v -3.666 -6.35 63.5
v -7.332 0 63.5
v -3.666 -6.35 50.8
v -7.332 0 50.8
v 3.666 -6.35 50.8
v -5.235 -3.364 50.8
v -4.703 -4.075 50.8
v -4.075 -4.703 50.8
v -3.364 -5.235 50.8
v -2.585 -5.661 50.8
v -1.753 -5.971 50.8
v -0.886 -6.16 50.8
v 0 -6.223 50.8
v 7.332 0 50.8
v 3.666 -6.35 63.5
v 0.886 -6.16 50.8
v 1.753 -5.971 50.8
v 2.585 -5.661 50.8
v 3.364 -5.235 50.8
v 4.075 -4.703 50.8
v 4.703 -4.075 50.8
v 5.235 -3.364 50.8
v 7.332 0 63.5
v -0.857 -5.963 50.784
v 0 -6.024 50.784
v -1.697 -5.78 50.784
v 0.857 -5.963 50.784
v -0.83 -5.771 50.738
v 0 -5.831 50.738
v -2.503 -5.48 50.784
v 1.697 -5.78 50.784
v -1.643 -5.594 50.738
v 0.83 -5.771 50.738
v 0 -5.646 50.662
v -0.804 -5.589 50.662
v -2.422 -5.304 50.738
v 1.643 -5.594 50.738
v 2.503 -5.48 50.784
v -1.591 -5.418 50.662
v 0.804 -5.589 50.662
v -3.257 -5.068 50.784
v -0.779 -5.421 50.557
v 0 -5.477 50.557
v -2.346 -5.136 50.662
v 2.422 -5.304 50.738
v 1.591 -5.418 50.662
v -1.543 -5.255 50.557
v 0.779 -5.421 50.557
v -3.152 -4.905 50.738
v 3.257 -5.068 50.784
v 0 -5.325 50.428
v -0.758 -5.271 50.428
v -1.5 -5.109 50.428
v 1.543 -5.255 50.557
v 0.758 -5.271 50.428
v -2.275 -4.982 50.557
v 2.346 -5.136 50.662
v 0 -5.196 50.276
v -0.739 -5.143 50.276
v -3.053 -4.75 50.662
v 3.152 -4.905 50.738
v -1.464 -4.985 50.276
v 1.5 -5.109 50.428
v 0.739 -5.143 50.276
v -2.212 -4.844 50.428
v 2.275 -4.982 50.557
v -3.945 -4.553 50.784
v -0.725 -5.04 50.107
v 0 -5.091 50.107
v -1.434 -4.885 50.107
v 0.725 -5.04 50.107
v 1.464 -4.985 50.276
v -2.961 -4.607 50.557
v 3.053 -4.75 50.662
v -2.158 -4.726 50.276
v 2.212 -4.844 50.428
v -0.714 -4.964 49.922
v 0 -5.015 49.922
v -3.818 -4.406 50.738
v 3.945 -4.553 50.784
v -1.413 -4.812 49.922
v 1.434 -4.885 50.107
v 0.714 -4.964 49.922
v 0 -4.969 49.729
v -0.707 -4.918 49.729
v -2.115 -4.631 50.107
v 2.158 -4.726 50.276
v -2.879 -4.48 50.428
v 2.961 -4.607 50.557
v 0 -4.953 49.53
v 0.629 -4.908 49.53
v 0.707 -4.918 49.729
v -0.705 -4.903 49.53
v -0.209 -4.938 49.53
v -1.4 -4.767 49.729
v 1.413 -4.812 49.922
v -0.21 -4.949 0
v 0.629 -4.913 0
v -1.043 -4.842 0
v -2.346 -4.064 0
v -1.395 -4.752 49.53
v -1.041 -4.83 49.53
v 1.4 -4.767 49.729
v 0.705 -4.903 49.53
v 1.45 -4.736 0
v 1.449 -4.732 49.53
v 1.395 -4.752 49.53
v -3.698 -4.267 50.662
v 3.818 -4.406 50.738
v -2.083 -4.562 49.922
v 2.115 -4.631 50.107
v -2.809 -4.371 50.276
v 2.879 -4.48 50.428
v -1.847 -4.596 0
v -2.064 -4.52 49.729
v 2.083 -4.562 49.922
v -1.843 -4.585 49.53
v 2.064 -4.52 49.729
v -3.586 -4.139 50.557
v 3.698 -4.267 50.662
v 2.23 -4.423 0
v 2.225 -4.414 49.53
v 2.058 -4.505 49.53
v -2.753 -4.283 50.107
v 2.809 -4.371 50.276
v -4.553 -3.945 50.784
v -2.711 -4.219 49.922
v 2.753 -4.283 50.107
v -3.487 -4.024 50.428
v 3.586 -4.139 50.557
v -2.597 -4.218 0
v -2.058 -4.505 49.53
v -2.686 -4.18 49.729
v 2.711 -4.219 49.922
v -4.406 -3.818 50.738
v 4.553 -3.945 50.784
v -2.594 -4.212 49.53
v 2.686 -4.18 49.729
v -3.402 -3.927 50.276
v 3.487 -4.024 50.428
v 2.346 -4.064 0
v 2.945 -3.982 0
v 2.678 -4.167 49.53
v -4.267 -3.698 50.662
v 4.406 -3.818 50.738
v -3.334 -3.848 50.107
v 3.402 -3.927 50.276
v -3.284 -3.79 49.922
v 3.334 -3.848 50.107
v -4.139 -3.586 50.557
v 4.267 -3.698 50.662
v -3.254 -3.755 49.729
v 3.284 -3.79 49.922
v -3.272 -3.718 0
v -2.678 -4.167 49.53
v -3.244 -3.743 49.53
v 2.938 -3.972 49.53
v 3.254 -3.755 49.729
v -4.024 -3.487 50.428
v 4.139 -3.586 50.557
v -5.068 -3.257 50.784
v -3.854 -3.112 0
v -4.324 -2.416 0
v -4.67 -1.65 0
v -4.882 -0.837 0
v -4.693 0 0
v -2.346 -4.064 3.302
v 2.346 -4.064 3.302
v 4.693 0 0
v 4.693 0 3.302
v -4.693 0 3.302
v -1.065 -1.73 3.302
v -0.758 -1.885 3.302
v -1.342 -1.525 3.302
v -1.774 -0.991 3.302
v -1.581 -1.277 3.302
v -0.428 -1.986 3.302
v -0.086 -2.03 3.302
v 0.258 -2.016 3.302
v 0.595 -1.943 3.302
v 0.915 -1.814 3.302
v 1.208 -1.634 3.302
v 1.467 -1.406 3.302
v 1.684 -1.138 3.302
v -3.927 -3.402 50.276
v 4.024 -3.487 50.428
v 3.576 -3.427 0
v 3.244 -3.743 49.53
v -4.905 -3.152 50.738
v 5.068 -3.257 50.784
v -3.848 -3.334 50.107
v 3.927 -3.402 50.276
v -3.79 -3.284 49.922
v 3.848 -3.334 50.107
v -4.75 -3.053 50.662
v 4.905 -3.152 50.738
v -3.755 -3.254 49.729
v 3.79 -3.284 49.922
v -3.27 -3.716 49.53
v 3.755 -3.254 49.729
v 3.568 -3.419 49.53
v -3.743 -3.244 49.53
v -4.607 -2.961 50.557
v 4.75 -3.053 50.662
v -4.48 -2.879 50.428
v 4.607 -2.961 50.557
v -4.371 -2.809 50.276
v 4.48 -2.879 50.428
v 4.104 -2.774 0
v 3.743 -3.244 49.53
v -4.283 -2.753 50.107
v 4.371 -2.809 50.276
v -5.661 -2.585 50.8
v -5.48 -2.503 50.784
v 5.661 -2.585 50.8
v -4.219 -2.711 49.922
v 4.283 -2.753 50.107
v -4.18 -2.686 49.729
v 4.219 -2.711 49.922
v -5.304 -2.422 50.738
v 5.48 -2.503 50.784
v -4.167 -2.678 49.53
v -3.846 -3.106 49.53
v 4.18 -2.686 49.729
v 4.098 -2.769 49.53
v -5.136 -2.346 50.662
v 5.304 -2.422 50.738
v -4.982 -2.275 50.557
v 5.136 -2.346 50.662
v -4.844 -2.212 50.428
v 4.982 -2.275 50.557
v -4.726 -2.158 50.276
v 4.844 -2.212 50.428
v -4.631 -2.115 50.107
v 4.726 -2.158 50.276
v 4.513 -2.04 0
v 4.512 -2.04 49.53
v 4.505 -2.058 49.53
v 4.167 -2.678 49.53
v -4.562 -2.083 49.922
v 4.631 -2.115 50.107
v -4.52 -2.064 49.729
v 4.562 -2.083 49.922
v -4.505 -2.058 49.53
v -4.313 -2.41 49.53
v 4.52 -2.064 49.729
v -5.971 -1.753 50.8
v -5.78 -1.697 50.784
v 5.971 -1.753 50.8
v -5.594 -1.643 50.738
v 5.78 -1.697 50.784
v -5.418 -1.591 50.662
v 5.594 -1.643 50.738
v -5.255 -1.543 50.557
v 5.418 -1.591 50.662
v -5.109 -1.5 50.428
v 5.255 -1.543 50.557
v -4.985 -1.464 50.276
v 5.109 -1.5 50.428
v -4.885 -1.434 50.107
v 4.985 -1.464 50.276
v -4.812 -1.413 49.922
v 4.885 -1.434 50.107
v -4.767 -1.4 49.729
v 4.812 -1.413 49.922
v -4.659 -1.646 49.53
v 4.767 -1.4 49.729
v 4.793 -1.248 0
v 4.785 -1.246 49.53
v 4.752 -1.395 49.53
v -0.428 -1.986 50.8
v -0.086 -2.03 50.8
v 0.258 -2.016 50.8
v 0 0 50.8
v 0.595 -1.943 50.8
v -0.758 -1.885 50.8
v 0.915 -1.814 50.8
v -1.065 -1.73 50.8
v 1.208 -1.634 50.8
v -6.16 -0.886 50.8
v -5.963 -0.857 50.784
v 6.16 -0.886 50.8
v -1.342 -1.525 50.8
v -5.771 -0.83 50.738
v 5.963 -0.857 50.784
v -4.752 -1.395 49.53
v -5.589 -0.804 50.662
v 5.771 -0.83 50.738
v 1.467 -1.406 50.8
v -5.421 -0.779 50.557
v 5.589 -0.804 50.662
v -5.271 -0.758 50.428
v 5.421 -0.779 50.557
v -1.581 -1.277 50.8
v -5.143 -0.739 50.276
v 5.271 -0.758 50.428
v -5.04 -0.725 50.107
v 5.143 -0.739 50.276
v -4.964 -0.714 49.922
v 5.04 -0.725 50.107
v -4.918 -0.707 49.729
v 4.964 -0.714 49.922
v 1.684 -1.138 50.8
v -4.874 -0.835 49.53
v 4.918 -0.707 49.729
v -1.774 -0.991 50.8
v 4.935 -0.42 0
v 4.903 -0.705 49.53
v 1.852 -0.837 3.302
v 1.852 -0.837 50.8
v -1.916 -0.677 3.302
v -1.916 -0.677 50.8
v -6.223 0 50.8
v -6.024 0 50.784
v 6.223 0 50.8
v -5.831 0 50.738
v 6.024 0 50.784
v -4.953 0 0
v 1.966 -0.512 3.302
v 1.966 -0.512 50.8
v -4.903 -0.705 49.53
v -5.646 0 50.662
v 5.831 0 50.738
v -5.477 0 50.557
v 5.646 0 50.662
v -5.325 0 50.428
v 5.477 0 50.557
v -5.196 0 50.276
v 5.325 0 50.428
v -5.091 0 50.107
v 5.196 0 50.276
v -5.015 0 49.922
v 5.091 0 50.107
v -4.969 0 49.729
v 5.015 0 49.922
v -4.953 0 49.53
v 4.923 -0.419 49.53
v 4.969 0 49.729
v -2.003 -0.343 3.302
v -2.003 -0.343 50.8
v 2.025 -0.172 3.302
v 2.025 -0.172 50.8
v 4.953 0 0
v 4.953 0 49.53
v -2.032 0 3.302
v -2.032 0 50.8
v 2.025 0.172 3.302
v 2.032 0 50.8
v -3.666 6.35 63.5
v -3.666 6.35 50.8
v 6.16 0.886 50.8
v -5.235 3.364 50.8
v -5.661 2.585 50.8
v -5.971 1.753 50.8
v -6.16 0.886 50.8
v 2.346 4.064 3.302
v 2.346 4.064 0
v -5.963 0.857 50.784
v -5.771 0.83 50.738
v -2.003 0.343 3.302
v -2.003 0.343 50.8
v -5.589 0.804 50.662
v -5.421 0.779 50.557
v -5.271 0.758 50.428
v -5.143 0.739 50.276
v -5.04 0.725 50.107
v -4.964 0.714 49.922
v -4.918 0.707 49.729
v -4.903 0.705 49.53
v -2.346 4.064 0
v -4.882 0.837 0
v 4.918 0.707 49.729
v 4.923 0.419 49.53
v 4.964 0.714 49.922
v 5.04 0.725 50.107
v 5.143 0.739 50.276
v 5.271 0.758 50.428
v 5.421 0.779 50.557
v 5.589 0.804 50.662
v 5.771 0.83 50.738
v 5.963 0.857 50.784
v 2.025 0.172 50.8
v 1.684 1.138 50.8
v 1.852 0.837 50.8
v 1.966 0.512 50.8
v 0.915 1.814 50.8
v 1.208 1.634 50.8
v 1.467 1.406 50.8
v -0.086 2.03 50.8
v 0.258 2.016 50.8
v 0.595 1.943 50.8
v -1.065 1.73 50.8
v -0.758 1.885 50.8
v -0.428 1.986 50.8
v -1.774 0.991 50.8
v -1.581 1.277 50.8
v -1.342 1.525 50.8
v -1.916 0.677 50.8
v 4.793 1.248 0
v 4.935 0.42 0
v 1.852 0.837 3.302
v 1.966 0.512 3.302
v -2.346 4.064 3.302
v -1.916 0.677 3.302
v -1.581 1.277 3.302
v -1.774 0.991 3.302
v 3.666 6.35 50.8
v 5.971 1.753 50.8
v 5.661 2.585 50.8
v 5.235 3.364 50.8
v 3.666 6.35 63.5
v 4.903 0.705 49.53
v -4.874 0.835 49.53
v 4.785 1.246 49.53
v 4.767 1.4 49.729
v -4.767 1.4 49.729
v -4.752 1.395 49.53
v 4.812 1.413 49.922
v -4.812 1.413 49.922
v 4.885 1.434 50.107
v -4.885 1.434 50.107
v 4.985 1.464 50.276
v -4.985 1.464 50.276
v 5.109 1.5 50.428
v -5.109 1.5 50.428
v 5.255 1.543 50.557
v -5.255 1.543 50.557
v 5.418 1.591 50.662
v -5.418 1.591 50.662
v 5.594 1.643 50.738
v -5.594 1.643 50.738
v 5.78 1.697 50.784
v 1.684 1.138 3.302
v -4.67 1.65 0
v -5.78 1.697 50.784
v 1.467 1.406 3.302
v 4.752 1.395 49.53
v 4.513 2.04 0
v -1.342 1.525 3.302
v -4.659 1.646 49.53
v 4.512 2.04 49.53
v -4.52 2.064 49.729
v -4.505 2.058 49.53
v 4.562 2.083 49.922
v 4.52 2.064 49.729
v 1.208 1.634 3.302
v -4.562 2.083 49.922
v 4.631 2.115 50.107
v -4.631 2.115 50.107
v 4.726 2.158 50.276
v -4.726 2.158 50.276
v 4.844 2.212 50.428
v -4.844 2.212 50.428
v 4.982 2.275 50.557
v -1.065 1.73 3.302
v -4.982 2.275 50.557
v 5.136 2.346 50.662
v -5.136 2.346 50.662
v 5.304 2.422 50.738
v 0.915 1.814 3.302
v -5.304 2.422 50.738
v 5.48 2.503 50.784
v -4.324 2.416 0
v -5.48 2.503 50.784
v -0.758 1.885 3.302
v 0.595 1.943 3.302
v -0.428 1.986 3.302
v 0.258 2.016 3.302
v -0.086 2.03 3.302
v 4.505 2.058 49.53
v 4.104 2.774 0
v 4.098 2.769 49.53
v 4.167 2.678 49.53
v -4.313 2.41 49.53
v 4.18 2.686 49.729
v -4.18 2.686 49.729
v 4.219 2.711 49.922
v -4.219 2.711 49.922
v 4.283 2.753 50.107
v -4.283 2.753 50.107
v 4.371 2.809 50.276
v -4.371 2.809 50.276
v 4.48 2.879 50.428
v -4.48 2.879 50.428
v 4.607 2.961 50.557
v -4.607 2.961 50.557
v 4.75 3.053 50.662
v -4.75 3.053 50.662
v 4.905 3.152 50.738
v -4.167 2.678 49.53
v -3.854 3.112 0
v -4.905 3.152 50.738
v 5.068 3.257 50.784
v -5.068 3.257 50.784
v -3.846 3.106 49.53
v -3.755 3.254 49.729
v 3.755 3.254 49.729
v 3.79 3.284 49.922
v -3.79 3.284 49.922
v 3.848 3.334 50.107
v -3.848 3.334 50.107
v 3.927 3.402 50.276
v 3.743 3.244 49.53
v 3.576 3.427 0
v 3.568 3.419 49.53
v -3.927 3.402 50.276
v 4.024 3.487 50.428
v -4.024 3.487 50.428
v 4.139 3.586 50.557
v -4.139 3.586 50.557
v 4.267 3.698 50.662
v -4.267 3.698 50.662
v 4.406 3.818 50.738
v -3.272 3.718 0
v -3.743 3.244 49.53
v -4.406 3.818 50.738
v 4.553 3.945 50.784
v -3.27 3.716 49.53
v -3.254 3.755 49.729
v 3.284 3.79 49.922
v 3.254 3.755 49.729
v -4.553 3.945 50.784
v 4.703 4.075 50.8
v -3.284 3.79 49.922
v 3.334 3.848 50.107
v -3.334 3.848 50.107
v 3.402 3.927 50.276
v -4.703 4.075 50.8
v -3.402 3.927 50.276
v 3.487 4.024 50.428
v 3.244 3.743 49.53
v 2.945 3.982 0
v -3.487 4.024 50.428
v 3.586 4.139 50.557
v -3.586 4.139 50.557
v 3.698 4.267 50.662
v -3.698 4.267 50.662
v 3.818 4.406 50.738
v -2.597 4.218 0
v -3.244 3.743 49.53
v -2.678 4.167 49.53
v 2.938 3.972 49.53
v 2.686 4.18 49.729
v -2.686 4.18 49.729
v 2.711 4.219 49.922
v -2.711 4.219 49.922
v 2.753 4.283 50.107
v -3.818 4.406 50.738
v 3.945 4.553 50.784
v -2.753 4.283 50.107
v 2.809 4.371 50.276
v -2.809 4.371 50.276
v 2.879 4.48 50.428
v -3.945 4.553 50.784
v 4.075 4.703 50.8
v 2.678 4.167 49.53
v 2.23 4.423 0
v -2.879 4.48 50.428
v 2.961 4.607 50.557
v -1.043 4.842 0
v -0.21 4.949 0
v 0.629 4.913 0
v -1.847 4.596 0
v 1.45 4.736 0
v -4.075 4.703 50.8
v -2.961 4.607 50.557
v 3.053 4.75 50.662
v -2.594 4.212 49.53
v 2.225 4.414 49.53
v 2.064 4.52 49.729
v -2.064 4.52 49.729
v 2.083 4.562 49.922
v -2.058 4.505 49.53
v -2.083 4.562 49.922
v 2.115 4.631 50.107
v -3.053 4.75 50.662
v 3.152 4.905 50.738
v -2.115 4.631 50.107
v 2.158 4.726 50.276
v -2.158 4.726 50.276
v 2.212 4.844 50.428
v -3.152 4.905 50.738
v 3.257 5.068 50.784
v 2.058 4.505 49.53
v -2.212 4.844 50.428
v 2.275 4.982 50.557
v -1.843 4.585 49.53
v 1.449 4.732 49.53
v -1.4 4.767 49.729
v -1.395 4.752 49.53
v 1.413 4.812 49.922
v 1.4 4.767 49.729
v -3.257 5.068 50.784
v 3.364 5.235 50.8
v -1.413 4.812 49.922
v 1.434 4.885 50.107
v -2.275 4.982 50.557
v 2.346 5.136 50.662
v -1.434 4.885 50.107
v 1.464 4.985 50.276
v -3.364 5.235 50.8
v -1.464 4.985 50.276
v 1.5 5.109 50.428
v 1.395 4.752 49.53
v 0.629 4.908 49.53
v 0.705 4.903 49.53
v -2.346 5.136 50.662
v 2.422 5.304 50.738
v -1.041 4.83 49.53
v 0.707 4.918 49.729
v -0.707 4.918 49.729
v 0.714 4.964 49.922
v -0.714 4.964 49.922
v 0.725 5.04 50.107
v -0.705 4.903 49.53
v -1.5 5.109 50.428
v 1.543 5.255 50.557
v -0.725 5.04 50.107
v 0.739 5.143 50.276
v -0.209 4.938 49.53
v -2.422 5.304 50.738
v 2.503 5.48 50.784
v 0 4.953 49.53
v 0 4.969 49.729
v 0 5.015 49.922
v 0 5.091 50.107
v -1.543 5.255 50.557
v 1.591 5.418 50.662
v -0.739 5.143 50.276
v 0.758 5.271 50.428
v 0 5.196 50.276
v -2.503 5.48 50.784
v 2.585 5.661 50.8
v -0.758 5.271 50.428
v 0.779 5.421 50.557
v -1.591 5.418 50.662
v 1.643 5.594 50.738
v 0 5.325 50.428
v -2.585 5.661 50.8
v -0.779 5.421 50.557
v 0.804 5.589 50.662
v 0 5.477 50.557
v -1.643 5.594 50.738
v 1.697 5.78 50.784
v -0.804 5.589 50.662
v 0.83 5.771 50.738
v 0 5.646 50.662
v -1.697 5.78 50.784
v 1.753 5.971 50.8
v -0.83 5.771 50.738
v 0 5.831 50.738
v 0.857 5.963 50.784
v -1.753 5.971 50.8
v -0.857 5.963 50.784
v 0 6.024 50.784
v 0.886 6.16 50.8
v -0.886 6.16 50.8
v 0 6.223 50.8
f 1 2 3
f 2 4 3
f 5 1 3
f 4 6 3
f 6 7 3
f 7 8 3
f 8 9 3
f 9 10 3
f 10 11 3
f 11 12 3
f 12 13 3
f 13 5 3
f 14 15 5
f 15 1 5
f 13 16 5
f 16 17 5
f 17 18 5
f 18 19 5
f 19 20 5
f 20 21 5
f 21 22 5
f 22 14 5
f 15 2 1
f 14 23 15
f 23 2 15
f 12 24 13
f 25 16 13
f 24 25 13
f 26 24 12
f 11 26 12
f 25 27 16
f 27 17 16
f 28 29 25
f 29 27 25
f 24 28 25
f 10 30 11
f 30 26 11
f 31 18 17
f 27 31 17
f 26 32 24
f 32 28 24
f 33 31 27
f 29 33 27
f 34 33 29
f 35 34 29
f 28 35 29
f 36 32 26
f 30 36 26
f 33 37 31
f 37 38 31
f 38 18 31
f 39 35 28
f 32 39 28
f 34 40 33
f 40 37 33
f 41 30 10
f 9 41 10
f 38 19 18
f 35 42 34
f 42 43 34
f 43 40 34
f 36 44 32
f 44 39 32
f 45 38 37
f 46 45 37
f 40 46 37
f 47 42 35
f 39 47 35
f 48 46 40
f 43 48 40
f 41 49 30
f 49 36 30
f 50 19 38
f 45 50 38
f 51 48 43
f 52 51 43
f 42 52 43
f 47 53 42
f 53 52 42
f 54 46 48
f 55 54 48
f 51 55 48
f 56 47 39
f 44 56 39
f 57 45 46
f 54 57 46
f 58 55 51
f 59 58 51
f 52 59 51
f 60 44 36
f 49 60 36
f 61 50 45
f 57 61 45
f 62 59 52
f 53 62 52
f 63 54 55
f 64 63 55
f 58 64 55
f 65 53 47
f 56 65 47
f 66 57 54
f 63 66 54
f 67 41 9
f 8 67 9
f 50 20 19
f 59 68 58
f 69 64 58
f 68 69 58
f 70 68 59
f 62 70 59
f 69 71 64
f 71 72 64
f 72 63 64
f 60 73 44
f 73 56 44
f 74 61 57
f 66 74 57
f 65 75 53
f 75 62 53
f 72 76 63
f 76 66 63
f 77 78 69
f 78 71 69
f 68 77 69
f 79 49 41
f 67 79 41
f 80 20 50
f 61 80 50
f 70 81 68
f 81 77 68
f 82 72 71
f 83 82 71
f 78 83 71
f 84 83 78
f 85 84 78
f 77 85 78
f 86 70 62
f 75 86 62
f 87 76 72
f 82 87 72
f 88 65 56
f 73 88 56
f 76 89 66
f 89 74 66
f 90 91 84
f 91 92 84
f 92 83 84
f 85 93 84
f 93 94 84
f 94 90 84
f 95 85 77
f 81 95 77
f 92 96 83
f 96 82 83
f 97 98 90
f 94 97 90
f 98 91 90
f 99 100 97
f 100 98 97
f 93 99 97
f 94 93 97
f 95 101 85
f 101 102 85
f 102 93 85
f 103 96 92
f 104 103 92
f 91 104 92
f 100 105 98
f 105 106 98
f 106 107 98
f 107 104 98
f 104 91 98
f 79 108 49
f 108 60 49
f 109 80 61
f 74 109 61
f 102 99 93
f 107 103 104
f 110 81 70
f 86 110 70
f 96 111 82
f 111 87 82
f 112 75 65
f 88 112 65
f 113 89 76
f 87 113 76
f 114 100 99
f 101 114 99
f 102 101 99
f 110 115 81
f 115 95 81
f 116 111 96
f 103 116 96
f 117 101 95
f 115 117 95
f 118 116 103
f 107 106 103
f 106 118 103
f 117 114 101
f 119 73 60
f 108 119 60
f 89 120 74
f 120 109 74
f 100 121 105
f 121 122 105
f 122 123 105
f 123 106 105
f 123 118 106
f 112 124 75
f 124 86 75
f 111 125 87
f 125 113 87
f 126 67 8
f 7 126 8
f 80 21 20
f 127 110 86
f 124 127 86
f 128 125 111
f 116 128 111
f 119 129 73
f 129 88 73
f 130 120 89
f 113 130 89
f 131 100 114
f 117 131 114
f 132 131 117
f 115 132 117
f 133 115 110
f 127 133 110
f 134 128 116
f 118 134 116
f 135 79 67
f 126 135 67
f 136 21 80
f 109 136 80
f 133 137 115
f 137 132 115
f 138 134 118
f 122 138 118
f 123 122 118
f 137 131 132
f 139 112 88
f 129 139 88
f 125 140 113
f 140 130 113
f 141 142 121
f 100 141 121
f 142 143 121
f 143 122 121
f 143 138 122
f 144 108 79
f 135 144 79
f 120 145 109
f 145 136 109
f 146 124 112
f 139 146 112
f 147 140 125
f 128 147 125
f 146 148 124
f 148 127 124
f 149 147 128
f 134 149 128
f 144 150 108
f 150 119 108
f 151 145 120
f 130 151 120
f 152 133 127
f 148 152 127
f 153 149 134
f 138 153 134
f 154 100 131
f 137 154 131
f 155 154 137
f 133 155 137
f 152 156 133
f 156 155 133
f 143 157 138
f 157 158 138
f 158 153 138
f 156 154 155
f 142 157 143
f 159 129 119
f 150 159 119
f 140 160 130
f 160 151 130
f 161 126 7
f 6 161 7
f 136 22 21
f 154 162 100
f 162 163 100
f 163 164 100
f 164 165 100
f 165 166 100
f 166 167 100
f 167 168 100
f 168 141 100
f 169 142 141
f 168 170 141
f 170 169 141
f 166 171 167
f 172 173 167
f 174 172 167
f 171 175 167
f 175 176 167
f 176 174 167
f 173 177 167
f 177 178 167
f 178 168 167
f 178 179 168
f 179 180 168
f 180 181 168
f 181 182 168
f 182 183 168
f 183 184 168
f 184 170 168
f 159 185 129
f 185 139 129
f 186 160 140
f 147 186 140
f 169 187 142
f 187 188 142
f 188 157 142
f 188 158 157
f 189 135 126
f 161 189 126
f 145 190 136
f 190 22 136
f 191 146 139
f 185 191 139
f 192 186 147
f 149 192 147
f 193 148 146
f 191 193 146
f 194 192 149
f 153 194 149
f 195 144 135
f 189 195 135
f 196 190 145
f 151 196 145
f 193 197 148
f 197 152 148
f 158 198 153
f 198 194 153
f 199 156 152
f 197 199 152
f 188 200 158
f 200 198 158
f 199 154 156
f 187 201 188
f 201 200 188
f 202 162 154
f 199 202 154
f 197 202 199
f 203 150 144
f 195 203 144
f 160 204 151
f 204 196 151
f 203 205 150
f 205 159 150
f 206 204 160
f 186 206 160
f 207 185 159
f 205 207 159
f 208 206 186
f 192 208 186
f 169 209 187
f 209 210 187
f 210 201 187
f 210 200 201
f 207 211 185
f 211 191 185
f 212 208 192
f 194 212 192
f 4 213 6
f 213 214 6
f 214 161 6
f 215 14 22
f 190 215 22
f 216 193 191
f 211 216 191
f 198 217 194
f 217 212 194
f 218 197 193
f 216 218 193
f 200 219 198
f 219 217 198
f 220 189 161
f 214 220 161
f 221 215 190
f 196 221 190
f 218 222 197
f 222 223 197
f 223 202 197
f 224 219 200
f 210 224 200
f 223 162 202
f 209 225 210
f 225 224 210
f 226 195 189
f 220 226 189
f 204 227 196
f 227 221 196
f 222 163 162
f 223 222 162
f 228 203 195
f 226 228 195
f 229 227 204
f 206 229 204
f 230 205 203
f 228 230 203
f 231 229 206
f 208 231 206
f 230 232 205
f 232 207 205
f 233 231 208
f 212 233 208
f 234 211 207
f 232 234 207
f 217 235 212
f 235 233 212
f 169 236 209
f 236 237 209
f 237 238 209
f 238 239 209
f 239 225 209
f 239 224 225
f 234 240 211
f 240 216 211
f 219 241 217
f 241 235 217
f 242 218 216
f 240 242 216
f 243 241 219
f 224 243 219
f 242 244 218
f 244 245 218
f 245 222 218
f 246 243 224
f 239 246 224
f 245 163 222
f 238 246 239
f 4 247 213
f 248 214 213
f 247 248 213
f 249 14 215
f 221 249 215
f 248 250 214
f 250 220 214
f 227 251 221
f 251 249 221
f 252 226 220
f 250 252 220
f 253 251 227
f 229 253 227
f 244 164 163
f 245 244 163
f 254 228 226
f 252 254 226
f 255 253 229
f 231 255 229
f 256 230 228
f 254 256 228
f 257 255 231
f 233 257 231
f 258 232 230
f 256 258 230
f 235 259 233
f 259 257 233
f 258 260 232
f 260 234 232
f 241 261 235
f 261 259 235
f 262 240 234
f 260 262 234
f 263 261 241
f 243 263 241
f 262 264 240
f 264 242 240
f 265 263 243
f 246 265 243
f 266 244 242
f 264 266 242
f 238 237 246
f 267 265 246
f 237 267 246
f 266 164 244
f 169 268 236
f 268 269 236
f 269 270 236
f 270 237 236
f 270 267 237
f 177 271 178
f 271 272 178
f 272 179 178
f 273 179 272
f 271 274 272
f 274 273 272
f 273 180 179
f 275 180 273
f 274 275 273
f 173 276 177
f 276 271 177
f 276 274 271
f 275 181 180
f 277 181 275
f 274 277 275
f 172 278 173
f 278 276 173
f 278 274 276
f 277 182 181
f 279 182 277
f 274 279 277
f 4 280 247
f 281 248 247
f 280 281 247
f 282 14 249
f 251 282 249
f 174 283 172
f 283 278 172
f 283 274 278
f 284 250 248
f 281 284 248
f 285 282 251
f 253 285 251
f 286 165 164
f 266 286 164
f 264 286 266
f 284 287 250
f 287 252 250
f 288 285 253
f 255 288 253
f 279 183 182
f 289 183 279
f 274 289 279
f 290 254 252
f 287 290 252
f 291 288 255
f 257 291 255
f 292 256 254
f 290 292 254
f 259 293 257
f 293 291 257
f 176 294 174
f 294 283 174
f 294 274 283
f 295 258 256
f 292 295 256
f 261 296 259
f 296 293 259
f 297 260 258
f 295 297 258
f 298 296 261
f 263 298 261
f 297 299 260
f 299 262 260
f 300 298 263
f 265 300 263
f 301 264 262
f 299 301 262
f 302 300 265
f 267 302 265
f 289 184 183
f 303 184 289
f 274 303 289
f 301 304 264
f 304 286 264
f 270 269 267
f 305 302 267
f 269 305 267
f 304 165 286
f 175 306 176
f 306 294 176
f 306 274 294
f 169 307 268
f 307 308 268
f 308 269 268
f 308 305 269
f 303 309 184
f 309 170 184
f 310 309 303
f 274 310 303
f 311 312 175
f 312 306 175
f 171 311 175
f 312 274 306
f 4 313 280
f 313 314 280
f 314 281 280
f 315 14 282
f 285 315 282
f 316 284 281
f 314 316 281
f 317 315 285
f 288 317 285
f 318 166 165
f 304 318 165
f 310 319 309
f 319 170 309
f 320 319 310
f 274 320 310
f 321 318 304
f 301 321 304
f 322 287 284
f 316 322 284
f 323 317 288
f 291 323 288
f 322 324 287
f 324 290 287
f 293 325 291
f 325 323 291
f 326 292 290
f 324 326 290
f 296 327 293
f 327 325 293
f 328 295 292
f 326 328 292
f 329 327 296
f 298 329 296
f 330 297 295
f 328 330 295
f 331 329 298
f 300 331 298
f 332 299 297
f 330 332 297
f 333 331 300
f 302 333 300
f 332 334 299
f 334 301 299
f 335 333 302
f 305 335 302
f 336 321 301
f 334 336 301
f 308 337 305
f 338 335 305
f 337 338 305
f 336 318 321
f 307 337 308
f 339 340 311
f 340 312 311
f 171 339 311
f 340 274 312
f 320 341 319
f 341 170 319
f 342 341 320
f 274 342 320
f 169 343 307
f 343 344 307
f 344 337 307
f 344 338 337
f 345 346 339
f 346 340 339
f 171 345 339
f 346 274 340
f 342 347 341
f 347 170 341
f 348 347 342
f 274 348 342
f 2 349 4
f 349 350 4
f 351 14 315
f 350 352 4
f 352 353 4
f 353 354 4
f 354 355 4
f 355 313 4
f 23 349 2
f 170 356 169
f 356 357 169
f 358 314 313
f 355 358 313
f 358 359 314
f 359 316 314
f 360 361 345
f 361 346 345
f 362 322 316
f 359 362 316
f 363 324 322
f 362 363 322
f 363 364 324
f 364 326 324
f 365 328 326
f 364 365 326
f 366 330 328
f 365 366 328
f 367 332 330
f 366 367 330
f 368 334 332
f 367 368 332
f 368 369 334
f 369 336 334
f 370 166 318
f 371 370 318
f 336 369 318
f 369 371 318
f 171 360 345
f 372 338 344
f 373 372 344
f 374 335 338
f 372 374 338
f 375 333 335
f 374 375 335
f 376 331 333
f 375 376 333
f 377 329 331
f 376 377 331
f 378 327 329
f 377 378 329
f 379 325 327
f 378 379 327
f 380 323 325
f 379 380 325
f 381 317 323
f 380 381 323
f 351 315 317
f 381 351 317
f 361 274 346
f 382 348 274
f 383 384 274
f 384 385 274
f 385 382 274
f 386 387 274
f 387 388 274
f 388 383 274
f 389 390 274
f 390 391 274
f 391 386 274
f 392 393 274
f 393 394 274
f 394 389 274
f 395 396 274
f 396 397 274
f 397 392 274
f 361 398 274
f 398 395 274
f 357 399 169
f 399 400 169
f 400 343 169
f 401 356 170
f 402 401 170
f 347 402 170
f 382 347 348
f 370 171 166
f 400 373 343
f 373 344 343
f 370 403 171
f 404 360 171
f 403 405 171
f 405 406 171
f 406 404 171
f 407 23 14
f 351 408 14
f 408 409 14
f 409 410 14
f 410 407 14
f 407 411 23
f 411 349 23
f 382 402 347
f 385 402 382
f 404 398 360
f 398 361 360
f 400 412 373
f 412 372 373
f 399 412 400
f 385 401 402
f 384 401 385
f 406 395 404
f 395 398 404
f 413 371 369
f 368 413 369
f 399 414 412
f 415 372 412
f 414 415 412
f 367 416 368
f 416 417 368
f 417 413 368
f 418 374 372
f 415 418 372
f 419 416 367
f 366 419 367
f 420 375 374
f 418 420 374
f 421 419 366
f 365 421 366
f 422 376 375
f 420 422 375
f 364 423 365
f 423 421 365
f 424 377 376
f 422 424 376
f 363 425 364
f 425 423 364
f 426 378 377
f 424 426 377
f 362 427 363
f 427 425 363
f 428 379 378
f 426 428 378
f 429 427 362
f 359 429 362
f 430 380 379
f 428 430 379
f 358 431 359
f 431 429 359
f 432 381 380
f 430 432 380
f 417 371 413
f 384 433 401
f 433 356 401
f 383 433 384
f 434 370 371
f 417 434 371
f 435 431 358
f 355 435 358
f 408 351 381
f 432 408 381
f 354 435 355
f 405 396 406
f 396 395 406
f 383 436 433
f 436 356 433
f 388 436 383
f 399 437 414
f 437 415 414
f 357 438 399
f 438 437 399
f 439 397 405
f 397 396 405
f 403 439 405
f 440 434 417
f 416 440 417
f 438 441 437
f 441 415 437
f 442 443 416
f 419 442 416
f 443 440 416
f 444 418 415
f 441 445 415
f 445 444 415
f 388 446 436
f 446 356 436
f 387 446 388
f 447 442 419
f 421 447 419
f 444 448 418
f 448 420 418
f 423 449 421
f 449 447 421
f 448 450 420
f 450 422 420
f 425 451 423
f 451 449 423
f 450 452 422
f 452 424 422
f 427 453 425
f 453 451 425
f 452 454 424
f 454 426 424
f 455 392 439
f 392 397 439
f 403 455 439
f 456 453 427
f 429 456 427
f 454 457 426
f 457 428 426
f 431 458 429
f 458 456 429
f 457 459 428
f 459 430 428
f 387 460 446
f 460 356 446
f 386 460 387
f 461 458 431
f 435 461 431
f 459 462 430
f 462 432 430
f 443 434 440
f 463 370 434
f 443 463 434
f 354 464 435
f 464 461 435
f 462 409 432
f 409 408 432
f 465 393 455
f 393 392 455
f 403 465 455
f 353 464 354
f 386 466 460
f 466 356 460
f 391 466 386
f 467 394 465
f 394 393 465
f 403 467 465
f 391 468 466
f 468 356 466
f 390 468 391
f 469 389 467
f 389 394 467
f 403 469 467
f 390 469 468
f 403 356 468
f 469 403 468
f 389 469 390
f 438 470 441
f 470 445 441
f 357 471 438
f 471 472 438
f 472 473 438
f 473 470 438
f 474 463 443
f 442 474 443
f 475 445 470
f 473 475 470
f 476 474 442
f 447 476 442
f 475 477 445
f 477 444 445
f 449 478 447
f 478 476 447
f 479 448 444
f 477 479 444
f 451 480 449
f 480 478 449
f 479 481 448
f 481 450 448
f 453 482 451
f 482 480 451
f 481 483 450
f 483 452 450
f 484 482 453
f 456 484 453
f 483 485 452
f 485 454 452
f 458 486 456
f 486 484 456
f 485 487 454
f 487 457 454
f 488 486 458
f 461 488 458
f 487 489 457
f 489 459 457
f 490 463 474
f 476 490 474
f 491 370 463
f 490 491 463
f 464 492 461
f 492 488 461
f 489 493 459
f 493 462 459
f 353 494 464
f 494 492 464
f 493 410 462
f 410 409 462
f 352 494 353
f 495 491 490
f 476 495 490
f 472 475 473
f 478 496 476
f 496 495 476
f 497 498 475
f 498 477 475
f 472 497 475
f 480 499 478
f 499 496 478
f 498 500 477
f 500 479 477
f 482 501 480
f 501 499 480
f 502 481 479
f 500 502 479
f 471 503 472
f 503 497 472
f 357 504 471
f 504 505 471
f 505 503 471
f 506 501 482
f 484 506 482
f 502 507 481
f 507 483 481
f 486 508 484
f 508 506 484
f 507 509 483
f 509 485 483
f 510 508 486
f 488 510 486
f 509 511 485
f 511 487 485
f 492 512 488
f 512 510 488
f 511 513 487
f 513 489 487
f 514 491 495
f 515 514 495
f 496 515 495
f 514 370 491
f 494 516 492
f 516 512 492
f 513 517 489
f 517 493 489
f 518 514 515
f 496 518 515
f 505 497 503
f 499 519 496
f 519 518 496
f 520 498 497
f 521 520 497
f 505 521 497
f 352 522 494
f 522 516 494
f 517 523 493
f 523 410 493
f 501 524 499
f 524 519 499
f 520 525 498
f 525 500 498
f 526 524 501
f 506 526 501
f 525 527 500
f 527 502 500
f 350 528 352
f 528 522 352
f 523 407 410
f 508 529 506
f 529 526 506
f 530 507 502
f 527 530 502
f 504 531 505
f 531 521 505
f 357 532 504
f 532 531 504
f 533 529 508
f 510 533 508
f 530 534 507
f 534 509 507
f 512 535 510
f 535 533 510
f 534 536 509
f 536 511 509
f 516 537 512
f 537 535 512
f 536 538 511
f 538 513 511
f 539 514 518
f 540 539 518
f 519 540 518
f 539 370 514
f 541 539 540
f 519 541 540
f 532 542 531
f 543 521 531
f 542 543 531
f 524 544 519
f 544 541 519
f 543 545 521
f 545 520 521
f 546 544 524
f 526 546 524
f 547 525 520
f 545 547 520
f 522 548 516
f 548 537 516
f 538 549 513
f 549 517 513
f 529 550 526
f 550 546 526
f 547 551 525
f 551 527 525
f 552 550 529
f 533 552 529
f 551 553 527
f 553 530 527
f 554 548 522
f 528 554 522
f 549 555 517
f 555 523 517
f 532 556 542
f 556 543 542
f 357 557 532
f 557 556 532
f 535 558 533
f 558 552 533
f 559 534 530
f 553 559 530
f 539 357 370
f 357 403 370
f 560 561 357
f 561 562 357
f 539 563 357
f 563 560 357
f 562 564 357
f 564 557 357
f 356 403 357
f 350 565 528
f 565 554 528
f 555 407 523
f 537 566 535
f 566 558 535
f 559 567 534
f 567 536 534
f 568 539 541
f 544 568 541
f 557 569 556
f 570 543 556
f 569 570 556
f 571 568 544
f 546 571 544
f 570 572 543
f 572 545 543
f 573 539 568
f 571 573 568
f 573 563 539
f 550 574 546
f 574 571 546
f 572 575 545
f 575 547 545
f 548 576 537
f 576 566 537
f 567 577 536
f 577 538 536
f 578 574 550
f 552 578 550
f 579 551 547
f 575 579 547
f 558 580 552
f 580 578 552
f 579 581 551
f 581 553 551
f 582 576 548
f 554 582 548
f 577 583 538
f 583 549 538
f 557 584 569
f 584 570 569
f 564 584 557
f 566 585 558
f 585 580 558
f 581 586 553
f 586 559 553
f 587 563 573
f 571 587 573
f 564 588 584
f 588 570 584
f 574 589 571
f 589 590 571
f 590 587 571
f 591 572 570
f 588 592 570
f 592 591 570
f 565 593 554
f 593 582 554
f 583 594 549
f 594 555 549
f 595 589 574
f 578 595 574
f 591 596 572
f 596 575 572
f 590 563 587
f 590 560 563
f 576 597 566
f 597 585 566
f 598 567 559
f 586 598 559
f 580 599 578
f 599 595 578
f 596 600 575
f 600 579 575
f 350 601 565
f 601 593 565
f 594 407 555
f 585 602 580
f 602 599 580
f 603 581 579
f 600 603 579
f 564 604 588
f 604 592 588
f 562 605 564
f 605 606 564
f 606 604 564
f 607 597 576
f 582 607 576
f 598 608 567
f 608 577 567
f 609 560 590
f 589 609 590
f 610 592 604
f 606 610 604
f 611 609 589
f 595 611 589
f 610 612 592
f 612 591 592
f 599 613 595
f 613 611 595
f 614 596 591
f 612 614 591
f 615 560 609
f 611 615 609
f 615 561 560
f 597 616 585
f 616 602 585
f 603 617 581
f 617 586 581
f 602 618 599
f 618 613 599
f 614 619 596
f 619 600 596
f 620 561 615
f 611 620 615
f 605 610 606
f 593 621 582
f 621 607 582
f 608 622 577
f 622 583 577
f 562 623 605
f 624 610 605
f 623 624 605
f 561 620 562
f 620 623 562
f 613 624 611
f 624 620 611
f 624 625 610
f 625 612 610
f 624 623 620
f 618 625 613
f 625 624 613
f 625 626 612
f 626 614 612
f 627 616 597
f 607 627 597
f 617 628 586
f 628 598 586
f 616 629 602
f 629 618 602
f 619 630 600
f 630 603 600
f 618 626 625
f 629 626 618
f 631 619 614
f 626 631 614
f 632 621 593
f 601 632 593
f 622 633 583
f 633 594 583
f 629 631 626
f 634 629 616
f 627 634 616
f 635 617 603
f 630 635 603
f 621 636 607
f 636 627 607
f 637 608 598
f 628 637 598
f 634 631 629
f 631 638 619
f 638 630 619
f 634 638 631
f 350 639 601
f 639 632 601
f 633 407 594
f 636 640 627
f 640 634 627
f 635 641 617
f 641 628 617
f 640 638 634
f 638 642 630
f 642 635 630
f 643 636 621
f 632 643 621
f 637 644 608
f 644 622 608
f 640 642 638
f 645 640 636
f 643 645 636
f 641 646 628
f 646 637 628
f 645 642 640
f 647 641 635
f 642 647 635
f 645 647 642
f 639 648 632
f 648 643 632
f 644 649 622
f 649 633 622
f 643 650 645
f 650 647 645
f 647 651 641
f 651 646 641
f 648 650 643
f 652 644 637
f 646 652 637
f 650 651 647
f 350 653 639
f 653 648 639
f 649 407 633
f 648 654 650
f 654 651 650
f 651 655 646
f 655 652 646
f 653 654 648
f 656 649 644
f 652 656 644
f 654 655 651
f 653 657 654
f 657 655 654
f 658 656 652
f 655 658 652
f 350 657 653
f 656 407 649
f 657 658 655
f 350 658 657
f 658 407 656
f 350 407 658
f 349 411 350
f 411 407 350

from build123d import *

# Parameters (mm, degrees)
SKETCH2_R           = 4.953
SKETCH2_R_2         = 2.032
BOSS_EXTRUDE1_DEPTH = 50.8
CUT_EXTRUDE1_DEPTH  = 3.302
BOSS_EXTRUDE2_DEPTH = 12.7
FILLET1_R           = 1.27


with BuildPart() as part:
    # Sketch2 → Boss-Extrude1 (new body)
    with BuildSketch(Plane.XY):
        Circle(SKETCH2_R)
        Circle(SKETCH2_R_2, mode=Mode.SUBTRACT)
    extrude(amount=BOSS_EXTRUDE1_DEPTH)

    # Sketch3 → Cut-Extrude1 (cut)
    with BuildSketch(Plane(origin=(0, 0, 0), x_dir=(-1, 0, 0), z_dir=(0, 0, -1))):
        Polygon((4.692702988, 0), (2.346351494, 4.064), (-2.346351494, 4.064), (-4.692702988, 0), (-2.346351494, -4.064), (2.346351494, -4.064), align=None)
    extrude(amount=-CUT_EXTRUDE1_DEPTH, mode=Mode.SUBTRACT)

    # Sketch4 → Boss-Extrude2 (add)
    with BuildSketch(Plane.XY.offset(50.8)):
        Polygon((7.332348419, 0), (3.666174209, 6.35), (-3.666174209, 6.35), (-7.332348419, 0), (-3.666174209, -6.35), (3.666174209, -6.35), align=None)
    extrude(amount=BOSS_EXTRUDE2_DEPTH)

    # Fillet1
    fillet1_edges = [part.edges().sort_by_distance(p)[0] for p in [
        (-4.953, 0, 50.8),
    ]]
    fillet(fillet1_edges, radius=FILLET1_R)


solid = part.part
